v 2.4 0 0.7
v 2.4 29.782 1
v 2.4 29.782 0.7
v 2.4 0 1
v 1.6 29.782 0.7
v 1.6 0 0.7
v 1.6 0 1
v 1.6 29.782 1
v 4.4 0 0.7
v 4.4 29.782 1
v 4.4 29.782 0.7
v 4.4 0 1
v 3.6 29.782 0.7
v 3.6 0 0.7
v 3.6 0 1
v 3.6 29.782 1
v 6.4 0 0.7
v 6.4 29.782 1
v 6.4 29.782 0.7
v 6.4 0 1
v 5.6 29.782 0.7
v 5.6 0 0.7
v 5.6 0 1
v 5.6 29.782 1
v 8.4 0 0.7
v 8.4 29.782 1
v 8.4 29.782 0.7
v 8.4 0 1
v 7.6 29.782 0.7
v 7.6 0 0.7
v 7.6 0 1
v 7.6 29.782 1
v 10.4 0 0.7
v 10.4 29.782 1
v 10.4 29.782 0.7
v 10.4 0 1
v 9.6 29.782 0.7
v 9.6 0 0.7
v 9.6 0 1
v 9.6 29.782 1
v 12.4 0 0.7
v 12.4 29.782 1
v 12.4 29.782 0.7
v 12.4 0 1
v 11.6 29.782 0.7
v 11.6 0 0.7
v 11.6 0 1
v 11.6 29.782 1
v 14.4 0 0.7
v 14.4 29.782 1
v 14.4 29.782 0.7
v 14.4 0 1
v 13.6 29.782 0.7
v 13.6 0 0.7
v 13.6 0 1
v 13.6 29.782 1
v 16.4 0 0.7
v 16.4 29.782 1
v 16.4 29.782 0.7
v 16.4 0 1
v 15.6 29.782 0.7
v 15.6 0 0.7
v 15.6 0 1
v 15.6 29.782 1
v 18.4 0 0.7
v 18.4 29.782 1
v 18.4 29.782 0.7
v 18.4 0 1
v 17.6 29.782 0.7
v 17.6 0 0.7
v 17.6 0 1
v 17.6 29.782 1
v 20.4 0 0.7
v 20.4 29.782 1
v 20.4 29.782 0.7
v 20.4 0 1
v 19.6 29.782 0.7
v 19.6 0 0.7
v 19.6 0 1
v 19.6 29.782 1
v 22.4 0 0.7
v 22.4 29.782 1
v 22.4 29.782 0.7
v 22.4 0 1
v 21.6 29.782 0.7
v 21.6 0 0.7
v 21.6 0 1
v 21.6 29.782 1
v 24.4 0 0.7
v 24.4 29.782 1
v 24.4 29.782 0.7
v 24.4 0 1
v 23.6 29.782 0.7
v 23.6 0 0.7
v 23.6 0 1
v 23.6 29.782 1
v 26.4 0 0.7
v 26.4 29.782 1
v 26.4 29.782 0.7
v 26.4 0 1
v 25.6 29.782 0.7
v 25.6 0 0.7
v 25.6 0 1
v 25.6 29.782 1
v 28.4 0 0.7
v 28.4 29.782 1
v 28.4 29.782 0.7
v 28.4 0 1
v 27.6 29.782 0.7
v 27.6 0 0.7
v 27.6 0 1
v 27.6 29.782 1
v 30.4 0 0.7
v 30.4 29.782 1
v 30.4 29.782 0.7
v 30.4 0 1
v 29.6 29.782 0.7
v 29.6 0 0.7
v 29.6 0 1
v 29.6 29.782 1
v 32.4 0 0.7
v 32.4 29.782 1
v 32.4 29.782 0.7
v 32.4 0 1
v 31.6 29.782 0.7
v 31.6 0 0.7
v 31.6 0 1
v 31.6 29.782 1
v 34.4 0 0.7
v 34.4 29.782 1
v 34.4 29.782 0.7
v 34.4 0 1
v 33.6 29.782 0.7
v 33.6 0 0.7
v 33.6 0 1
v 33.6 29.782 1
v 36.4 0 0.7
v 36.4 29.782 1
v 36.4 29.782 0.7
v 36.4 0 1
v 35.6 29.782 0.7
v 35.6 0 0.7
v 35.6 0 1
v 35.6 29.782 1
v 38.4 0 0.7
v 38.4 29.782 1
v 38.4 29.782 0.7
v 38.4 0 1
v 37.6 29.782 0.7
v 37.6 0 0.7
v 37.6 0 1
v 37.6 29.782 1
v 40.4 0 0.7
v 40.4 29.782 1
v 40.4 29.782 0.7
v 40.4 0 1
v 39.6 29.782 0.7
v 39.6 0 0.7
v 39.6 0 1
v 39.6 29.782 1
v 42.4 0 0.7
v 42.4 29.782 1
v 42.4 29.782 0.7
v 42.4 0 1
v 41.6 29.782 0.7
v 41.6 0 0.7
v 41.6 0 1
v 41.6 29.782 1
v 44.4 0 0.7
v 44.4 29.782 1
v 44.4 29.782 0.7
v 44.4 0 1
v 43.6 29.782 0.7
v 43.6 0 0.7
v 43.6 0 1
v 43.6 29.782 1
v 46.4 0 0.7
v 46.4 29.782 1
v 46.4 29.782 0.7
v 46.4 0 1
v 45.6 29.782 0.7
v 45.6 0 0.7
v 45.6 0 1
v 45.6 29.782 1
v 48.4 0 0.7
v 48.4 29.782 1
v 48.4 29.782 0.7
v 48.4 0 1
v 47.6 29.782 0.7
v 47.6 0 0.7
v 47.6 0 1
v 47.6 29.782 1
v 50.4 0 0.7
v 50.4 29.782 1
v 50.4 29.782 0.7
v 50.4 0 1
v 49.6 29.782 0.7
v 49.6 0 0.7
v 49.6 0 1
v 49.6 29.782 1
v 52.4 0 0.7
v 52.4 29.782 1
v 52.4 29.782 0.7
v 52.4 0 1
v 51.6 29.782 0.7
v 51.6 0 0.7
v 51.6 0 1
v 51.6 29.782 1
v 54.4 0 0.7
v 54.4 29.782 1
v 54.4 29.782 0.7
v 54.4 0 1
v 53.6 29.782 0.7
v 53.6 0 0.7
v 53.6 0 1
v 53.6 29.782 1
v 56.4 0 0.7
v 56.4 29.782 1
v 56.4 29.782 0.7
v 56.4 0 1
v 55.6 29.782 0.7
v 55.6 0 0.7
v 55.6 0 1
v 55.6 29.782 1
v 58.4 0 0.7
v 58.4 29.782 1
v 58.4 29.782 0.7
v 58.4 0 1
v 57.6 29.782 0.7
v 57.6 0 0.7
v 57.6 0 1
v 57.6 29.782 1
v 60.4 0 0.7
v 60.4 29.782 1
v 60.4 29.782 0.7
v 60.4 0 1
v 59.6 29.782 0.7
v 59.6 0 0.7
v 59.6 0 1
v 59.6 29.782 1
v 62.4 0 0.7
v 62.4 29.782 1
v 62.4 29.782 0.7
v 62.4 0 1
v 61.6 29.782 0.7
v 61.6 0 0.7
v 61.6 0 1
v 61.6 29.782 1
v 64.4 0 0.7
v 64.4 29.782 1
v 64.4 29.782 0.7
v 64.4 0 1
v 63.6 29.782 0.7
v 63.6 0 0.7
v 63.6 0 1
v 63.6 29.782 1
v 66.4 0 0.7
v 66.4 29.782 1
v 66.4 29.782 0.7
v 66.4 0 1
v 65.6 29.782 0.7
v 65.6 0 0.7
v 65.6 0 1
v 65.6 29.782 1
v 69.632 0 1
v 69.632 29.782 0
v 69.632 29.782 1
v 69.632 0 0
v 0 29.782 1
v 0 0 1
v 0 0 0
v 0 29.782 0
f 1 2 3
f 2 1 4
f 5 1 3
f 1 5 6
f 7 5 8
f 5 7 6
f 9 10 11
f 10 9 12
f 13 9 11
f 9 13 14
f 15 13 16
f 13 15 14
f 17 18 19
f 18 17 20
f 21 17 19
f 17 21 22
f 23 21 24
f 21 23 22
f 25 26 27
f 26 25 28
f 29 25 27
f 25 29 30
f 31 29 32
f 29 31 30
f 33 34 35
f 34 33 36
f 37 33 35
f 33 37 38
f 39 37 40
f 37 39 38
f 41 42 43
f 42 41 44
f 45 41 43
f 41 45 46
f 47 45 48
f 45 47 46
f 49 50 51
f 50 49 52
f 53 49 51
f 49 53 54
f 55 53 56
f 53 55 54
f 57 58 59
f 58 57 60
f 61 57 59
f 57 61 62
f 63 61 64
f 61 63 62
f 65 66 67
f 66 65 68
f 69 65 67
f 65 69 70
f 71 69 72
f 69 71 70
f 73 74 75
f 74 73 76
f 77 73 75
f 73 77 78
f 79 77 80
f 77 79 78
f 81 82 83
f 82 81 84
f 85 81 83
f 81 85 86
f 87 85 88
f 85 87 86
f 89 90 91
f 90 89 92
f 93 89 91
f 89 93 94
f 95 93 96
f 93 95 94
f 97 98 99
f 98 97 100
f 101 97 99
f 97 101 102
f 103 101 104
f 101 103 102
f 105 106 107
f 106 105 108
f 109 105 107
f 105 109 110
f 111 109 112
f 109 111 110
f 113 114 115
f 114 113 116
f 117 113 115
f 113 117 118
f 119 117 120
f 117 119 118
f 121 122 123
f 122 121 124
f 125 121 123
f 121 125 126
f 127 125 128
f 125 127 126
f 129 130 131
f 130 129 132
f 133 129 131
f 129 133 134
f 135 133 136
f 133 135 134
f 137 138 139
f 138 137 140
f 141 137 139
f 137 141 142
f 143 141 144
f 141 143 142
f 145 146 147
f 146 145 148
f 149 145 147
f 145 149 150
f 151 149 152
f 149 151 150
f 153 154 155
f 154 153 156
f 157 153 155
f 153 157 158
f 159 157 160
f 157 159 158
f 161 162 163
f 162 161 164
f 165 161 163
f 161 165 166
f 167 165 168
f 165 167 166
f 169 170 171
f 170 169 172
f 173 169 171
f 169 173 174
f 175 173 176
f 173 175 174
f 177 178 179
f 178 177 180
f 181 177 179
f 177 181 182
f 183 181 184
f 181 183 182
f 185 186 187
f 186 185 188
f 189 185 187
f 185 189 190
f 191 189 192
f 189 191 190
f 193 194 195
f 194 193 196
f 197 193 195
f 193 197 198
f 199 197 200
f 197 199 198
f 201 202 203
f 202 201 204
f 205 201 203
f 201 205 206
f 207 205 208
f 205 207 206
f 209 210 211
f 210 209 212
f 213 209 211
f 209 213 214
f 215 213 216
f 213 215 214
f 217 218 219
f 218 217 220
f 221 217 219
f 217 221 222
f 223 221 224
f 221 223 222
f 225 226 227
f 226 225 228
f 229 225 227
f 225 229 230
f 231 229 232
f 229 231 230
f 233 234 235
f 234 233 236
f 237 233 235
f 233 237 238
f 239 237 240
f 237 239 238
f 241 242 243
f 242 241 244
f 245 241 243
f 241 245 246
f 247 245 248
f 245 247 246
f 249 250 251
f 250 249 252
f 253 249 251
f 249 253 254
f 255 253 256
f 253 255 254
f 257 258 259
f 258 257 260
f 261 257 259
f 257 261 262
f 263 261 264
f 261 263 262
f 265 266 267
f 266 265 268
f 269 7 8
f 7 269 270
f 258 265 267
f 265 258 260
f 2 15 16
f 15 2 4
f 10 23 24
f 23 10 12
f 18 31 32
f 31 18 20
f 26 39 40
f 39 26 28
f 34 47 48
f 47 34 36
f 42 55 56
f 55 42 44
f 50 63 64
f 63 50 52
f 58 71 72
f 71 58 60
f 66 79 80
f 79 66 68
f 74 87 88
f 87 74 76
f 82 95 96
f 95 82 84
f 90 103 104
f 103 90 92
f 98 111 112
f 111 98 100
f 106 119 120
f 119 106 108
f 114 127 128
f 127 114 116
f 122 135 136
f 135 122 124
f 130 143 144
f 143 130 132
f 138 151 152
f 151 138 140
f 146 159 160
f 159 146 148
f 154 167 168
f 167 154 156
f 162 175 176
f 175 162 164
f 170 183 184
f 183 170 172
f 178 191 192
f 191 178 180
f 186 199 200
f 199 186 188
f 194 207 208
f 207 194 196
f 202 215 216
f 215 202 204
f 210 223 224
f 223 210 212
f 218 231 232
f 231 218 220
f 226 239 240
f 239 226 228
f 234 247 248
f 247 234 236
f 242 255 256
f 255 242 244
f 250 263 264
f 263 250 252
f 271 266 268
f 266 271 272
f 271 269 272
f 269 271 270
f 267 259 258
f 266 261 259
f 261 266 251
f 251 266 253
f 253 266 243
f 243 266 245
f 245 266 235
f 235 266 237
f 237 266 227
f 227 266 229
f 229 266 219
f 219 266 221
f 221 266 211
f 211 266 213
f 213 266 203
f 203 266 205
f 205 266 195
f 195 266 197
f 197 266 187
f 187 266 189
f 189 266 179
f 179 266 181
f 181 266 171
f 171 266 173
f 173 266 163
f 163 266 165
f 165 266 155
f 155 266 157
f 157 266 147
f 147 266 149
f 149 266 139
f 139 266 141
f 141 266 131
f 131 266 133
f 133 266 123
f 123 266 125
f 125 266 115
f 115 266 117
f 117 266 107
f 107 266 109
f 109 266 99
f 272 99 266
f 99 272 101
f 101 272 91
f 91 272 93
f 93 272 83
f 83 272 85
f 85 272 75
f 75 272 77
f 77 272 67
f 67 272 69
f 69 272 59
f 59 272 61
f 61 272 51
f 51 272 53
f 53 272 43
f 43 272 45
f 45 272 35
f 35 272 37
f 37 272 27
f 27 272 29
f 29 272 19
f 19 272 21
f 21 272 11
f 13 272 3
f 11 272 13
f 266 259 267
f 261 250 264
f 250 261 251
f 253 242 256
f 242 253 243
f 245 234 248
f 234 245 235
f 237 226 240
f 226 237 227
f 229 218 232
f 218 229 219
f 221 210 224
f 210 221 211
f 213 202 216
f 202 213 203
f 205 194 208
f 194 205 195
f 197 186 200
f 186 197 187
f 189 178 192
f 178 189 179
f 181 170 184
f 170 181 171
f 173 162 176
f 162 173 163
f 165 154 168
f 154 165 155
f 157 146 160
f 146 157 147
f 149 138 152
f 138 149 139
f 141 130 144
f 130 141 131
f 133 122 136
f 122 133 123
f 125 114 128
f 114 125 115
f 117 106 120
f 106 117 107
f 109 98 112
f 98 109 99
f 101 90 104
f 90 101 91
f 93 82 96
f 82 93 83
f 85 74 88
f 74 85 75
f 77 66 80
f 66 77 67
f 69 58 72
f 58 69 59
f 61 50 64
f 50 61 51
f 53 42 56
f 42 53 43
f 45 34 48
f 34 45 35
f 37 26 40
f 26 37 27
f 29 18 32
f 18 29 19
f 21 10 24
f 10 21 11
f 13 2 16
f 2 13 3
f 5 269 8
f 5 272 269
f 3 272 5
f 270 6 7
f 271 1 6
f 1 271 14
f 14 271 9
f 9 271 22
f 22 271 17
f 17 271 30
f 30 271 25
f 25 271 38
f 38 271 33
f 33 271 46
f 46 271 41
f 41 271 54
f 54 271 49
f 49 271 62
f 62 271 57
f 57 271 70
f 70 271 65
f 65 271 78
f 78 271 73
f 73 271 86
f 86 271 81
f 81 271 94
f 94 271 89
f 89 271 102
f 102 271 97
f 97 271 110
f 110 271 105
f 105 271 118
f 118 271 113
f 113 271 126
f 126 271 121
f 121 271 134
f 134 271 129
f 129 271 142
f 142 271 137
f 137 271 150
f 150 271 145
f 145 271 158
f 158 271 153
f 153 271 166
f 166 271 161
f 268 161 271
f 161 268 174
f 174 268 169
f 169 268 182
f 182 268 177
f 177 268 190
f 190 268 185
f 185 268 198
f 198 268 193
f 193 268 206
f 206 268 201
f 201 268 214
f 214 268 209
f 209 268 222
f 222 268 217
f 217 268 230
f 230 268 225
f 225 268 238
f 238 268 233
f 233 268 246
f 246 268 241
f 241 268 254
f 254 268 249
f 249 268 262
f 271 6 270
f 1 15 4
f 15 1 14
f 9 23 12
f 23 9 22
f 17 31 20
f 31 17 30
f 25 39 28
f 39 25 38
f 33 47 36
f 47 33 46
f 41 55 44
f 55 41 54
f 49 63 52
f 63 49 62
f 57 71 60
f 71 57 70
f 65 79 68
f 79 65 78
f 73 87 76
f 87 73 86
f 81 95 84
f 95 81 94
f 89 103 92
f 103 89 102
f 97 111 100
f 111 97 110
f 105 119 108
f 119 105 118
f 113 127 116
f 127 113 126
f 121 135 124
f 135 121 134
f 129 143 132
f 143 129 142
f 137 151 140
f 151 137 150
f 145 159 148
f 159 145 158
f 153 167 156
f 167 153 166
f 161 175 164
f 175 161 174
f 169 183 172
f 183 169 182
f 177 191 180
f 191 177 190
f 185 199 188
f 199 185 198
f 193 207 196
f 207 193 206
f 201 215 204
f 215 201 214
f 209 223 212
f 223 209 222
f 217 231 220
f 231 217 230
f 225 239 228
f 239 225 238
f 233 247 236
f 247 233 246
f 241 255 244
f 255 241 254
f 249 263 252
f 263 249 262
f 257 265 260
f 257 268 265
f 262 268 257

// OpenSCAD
/*
 * PROMPT: H0 scale (1:87) ISO shipping container long side panel, flat for printing.
 * 69.6 mm × 29.8 mm × 1 mm. Vertical corrugation grooves on exterior face (Z=1),
 * spaced every 2 mm along length, 0.8 mm wide, 0.3 mm deep, running full height.
 */

$fn = 32;
S = 1 / 87;

panel_t     = 1.0;
container_m = 6;

ctnr_l      = (container_m == 6 ? 6058 : 12192) * S;  // 69.6 mm
ctnr_h      = 2591 * S;                                //  29.8 mm

corr_period = 2.0;   // groove pitch (mm)
corr_w      = 0.8;   // groove width (mm)
corr_d      = 0.3;   // groove depth (mm)

module side_panel() {
    // X = panel width (ctnr_l), Y = panel height (ctnr_h), Z = thickness
    // exterior face is at Z = panel_t (face-up when printing)
    difference() {
        cube([ctnr_l, ctnr_h, panel_t]);
        // vertical corrugation grooves cut from the exterior face downward
        n = floor(ctnr_l / corr_period) - 1;
        for (i = [1 : n]) {
            x = i * corr_period;
            translate([x - corr_w/2, -1, panel_t - corr_d])
                cube([corr_w, ctnr_h + 2, corr_d + 1]);
        }
    }
}

side_panel();
